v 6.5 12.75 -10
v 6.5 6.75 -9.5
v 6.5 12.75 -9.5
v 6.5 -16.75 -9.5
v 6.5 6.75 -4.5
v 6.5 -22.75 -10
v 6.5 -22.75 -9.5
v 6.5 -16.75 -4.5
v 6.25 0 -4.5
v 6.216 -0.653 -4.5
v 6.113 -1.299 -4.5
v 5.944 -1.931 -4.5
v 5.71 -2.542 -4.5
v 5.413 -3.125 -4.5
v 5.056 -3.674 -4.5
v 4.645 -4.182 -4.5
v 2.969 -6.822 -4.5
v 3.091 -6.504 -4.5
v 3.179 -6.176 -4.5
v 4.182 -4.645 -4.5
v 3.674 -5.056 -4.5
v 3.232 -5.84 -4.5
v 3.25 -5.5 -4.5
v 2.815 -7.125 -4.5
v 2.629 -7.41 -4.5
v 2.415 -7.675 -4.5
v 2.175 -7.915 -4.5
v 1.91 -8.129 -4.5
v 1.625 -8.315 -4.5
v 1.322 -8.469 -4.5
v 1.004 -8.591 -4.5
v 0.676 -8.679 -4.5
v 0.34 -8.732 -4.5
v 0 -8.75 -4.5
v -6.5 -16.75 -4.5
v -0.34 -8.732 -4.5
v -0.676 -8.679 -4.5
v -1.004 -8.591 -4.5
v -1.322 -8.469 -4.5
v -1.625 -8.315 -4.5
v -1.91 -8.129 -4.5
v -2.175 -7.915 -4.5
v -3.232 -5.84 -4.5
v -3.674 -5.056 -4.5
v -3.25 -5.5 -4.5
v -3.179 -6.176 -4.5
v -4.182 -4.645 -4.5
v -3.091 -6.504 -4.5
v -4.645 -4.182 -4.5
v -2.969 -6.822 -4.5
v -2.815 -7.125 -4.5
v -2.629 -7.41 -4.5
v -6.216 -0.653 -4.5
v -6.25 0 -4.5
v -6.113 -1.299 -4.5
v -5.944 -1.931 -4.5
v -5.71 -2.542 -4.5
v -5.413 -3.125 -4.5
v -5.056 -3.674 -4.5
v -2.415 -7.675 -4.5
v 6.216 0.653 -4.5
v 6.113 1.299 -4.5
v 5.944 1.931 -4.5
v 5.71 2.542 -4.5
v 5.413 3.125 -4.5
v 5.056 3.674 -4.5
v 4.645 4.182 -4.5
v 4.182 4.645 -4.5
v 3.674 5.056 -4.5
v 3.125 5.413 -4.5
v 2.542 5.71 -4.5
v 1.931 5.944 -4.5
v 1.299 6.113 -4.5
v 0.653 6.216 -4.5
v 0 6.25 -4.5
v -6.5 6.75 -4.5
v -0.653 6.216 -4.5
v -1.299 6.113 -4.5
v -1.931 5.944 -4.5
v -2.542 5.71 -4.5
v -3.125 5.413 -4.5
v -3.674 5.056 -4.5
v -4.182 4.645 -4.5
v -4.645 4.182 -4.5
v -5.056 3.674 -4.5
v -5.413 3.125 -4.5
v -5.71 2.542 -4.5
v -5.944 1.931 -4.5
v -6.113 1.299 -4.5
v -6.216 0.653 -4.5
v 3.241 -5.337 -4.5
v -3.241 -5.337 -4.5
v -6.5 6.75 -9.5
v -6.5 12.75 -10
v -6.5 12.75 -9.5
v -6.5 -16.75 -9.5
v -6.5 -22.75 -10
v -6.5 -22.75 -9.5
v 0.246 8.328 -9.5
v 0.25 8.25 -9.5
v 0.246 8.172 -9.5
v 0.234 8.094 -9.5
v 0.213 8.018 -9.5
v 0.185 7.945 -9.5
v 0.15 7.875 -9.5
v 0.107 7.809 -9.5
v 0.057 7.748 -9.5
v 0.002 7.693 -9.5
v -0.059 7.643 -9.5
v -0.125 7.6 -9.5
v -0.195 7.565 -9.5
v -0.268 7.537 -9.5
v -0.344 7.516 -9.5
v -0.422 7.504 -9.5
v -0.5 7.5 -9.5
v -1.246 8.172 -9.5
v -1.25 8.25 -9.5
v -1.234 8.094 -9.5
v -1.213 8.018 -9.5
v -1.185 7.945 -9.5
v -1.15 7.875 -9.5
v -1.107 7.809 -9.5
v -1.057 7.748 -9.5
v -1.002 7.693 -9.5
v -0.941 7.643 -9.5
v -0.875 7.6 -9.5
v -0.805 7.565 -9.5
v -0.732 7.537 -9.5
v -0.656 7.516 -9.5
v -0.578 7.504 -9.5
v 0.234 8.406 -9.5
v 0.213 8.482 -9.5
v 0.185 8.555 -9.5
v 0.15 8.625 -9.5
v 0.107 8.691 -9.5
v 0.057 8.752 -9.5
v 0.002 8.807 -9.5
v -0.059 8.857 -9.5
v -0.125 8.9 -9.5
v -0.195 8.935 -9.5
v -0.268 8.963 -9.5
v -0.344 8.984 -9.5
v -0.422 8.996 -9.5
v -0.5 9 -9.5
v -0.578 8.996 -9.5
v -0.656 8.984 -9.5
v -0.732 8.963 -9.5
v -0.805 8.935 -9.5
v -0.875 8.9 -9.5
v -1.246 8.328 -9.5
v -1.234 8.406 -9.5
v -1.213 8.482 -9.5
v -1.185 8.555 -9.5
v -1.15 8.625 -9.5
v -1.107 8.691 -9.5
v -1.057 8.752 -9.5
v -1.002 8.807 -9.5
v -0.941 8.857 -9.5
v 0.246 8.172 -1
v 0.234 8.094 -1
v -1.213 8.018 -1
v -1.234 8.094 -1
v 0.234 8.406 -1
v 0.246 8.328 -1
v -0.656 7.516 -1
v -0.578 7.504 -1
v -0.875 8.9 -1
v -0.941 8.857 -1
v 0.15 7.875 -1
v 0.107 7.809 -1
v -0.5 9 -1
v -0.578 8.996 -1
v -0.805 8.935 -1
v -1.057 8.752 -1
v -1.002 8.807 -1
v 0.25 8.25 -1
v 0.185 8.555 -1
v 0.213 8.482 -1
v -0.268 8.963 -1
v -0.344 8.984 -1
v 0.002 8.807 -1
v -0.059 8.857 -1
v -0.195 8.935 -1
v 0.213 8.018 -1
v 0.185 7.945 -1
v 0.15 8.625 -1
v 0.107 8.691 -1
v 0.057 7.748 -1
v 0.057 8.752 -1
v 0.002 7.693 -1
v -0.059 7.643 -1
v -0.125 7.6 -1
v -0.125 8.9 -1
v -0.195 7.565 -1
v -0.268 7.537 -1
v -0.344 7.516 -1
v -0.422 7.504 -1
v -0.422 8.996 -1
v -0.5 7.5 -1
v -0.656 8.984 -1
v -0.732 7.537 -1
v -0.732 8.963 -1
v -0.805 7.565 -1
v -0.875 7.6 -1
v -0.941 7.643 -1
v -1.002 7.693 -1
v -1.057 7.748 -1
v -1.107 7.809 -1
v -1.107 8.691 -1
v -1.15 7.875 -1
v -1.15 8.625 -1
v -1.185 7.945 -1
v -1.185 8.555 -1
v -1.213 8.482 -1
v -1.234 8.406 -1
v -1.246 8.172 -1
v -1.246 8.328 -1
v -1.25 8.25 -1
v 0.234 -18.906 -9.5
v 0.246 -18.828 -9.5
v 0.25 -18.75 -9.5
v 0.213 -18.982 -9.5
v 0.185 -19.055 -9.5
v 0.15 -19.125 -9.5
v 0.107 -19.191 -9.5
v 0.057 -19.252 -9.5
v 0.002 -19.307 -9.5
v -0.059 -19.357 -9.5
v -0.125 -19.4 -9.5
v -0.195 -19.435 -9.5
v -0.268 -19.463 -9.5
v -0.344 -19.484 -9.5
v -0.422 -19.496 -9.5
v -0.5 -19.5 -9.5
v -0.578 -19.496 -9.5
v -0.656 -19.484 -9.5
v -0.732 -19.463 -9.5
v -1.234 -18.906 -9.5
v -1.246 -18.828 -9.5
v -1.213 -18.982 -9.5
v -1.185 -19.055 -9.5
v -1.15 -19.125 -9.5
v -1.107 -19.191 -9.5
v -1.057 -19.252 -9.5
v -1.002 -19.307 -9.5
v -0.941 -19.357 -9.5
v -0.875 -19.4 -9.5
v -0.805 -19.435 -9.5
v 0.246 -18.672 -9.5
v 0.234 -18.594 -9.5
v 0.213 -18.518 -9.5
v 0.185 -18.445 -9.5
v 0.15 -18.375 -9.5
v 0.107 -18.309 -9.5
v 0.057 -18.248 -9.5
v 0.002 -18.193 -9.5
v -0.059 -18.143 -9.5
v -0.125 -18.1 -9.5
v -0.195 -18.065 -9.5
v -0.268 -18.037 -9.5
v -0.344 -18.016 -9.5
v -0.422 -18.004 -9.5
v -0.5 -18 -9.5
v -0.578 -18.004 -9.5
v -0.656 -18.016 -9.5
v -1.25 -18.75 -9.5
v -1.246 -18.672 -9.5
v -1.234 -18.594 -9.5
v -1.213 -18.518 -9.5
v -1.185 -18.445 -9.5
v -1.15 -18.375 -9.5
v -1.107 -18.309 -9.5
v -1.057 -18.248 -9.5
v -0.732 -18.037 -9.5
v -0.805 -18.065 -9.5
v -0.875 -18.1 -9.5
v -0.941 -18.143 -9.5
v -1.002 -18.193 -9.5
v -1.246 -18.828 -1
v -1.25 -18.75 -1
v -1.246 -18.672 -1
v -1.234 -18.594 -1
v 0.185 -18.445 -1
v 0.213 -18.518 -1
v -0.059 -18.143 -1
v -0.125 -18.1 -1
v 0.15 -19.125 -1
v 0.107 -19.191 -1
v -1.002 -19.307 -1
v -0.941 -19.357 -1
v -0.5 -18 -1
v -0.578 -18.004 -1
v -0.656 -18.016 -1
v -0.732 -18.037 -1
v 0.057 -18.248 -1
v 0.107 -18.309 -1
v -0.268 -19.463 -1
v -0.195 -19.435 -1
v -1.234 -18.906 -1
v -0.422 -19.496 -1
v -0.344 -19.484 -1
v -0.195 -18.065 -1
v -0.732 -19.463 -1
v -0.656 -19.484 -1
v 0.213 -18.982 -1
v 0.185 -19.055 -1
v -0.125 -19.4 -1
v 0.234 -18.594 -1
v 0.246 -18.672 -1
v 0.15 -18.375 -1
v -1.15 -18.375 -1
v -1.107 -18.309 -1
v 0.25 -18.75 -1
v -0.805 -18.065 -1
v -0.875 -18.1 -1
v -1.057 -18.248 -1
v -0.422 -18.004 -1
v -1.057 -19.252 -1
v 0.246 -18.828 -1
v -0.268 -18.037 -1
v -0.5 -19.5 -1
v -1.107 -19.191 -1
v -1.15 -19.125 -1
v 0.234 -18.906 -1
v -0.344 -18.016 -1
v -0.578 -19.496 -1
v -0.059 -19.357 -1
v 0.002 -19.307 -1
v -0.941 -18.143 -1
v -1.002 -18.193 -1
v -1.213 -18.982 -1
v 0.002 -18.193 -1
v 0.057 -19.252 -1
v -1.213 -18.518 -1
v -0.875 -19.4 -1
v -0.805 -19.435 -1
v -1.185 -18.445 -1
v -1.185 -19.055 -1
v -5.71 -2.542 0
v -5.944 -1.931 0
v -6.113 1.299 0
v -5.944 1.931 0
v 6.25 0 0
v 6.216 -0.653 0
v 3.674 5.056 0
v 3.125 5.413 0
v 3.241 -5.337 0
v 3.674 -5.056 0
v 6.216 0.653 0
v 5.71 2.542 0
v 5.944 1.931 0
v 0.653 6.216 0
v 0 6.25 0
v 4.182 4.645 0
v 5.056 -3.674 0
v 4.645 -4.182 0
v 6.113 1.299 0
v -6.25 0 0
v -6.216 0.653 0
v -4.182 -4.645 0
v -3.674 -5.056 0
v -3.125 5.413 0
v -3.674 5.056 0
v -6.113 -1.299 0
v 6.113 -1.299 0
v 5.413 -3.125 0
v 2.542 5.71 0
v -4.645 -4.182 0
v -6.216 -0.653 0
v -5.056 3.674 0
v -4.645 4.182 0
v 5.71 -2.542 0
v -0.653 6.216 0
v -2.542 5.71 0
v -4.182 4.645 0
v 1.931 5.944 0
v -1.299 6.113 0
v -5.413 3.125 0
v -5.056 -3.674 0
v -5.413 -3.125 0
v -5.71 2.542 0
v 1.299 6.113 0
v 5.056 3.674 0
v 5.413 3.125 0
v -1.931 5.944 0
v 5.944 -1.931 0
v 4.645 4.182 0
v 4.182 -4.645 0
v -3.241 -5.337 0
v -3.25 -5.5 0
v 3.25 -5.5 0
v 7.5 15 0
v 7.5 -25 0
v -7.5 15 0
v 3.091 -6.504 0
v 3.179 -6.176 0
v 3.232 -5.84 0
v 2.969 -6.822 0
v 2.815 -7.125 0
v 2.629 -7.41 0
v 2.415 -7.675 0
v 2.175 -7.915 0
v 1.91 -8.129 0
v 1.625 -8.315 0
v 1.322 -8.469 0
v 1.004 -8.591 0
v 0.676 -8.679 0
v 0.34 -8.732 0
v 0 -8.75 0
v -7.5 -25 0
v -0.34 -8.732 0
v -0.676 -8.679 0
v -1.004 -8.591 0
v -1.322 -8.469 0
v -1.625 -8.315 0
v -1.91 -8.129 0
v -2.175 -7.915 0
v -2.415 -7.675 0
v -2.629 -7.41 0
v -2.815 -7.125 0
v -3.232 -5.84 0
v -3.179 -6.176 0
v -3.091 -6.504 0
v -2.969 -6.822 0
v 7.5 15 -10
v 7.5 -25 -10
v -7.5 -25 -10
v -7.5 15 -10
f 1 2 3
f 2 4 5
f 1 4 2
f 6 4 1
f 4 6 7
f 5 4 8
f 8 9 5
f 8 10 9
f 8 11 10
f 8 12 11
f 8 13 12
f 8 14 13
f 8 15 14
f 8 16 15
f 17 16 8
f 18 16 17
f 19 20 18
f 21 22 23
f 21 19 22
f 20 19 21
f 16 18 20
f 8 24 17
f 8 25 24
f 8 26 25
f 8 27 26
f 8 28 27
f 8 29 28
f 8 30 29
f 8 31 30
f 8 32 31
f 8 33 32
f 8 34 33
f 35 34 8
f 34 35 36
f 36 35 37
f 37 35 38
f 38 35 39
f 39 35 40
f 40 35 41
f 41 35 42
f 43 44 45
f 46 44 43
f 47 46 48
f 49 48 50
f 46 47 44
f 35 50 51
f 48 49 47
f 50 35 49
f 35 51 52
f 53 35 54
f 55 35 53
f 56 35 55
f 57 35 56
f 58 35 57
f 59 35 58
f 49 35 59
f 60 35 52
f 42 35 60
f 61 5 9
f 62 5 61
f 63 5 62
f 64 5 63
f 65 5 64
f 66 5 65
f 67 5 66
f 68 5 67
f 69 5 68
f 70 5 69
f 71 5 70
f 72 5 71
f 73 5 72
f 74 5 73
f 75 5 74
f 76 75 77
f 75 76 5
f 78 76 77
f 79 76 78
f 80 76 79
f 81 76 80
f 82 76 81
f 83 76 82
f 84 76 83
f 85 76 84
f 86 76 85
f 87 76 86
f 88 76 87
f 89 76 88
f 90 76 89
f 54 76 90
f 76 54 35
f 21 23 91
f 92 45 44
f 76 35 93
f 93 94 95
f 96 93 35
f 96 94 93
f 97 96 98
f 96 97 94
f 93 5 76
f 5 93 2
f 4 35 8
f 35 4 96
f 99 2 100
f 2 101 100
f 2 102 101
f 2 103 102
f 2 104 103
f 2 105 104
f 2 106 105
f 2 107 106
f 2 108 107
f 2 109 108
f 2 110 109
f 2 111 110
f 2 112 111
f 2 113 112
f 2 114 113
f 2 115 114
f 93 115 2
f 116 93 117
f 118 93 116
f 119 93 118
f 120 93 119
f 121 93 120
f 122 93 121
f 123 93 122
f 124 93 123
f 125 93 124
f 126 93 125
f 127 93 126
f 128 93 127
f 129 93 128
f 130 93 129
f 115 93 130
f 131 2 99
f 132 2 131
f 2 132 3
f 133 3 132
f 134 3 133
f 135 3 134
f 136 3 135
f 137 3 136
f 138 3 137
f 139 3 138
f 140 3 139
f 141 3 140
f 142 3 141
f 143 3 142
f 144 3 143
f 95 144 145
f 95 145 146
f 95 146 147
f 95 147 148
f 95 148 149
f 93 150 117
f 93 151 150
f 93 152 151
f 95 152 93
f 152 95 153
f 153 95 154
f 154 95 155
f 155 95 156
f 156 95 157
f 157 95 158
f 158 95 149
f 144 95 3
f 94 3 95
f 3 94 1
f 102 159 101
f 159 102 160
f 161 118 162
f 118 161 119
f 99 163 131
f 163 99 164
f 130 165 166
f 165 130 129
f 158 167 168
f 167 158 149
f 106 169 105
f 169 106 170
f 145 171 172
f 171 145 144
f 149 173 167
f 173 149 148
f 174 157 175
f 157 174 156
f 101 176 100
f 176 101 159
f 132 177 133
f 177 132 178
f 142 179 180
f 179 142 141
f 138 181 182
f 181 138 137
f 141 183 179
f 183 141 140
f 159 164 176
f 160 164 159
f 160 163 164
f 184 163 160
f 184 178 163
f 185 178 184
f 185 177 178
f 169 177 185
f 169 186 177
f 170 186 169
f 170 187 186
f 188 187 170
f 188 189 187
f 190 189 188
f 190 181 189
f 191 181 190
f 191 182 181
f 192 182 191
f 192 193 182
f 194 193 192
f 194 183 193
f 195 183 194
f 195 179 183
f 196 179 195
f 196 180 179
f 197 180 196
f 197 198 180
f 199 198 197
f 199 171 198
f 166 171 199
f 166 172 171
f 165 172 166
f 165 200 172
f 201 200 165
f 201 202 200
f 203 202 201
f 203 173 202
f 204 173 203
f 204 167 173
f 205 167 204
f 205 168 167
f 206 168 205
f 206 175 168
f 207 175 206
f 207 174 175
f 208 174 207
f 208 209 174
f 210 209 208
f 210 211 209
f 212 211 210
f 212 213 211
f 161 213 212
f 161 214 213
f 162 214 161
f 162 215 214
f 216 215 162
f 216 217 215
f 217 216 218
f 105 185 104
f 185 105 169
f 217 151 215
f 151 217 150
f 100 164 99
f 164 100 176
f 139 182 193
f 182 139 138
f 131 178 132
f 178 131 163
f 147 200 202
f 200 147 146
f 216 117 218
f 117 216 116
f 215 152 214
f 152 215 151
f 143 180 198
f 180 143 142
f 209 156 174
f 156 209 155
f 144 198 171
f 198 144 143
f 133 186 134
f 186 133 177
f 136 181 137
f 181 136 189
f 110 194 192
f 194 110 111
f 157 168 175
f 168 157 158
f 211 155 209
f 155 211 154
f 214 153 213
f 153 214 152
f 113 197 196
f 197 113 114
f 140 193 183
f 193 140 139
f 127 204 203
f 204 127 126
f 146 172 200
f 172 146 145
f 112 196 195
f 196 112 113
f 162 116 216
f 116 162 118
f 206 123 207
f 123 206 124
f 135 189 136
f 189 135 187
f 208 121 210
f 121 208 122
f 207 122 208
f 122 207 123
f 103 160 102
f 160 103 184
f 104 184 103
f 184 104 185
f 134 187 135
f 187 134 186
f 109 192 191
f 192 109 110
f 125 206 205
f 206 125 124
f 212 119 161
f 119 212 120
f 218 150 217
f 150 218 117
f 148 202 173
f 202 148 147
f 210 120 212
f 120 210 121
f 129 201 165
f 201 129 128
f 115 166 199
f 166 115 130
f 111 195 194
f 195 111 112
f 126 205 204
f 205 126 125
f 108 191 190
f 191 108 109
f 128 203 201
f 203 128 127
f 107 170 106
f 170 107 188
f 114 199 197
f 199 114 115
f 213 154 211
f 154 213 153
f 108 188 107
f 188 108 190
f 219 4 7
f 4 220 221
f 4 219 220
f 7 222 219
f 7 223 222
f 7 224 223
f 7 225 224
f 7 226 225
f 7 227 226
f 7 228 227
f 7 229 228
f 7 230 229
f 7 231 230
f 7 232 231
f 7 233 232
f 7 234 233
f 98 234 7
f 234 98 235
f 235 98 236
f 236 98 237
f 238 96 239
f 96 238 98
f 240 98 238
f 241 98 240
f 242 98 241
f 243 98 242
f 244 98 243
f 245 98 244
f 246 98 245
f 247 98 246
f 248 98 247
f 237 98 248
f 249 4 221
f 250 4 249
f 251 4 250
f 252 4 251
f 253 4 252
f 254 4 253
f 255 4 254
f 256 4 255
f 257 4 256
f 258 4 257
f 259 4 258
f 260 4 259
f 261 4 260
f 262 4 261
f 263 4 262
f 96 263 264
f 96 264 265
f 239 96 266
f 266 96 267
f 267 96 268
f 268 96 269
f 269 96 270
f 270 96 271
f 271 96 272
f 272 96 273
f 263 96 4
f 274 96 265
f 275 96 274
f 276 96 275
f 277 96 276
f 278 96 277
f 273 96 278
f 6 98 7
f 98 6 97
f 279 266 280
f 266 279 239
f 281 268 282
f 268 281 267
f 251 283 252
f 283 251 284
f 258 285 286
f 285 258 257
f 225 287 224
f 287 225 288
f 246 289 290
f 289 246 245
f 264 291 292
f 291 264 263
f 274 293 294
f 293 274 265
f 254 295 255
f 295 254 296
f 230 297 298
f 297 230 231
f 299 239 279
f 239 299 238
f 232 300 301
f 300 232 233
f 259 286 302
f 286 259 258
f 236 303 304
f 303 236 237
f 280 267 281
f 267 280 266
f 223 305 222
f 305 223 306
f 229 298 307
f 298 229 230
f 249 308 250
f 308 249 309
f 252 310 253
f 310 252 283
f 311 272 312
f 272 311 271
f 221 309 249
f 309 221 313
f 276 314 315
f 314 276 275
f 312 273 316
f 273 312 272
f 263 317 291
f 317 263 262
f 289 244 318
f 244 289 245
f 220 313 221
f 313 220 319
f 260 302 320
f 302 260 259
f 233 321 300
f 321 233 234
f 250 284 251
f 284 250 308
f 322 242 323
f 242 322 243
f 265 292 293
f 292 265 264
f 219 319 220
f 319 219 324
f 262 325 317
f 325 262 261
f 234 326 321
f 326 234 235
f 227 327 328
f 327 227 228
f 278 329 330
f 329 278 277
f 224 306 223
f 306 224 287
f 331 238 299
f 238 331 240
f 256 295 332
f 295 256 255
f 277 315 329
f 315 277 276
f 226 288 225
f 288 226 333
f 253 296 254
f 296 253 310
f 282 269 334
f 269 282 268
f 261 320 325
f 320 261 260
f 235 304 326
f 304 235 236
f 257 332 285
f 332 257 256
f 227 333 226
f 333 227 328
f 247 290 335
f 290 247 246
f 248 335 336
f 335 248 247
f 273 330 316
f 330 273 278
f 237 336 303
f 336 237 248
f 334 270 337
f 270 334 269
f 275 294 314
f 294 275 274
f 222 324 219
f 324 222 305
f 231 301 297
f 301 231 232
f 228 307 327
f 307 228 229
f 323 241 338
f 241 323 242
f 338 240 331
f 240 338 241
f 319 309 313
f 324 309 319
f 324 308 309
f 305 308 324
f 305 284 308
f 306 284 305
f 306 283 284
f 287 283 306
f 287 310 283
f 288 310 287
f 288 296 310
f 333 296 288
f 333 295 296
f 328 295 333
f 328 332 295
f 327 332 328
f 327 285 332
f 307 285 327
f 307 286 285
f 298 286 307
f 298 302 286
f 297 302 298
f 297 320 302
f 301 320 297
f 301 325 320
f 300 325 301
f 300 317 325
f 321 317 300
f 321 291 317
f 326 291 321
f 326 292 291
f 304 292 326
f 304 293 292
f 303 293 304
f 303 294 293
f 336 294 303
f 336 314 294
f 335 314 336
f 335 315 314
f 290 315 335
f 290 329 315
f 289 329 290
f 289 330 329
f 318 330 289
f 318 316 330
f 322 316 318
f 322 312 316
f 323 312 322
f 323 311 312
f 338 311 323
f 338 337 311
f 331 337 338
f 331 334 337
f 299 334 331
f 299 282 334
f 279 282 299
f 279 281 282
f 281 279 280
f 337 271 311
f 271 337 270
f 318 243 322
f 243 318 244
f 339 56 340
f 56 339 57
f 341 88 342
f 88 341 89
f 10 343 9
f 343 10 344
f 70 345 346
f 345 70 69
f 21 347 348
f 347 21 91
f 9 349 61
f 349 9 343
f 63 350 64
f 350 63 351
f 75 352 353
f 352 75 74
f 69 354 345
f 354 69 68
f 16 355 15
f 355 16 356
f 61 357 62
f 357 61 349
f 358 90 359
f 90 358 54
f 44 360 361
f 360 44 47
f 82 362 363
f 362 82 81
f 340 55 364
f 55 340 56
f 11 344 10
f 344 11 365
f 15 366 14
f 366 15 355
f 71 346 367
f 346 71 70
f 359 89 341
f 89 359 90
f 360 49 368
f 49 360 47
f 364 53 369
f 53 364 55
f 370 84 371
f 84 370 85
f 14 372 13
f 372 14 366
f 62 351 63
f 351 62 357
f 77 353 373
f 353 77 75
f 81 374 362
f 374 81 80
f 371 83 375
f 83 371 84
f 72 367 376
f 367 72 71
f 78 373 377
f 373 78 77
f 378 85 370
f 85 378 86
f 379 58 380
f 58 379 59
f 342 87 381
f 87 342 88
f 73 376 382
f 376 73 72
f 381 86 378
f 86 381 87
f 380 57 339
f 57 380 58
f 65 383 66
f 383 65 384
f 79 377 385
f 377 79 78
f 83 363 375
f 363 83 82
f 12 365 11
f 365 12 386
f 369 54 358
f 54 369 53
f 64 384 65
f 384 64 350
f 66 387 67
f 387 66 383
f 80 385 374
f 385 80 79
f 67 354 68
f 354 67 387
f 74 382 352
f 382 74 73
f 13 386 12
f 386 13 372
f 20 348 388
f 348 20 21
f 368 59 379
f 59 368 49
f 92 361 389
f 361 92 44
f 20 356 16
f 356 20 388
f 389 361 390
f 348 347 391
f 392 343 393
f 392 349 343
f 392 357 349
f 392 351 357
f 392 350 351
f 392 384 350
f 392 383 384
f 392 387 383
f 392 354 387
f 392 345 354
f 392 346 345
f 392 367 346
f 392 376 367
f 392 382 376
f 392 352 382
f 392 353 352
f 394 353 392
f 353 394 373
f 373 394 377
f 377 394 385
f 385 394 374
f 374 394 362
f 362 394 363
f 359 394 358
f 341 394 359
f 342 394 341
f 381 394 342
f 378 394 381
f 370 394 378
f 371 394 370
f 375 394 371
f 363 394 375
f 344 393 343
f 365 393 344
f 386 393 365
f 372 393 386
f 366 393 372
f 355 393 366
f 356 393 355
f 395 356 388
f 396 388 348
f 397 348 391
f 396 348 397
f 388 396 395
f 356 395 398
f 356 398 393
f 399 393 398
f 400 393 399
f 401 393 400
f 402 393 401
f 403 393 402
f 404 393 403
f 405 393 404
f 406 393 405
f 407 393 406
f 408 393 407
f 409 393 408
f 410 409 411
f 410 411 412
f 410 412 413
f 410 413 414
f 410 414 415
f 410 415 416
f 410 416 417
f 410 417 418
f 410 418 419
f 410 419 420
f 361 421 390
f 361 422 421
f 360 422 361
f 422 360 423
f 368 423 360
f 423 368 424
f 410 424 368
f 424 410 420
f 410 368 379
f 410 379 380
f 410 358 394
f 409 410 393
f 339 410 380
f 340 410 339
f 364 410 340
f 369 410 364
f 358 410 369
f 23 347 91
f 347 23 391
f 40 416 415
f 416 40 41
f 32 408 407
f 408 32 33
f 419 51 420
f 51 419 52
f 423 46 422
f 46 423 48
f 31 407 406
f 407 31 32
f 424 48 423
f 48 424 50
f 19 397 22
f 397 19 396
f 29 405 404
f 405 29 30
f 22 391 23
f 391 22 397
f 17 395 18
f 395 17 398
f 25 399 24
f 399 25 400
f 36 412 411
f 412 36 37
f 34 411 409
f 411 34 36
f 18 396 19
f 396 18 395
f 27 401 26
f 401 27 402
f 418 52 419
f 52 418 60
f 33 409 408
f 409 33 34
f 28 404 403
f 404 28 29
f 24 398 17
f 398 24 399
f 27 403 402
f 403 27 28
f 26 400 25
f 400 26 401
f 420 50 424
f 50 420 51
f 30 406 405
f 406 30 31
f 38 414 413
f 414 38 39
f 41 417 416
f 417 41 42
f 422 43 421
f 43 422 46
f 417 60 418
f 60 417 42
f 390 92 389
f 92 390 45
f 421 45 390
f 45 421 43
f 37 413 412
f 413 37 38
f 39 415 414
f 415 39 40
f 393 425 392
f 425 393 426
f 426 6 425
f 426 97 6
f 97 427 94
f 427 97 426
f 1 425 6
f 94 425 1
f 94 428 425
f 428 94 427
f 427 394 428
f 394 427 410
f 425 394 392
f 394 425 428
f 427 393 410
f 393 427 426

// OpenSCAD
// file: rpi.scad
module base_plate_screw_head_cone(screw_head_radius = 6, screw_head_depth = 2)
{

    rotate_extrude()
    {
        translate([0, 0, 0]) polygon(points=[[0,0],[screw_head_radius, 0],[0,screw_head_depth]], paths=[[0,1,2]]);
    }
}


module raspberry_pi_holes(thickness = 3, screw_hole_diameter = 3)
{
//    z_offset = -thickness / 2.0;
    z_offset = -thickness;
    for ( x_offset = [3.5, 61.5] )
    {
        for ( y_offset = [3.5, 52.5] )
        {
            union()
            {
                translate([x_offset, y_offset, z_offset]) cylinder(d=screw_hole_diameter, h=thickness);
                translate([x_offset, y_offset, z_offset]) base_plate_screw_head_cone();
            }
        }
    }
}


// camera hole is centered at (0, 0, 0)
//camera_hole_center_x = 0;
//camera_hole_center_y = 6.7;
//module rpi_camera_holes(thickness = 2)
//{
//    wall_thickness = thickness;
//    
//    screw_head_depth = 2;
//    screw_head_radius = 4;
//    
//    translate([0, 0, -wall_thickness + 1])
//    union()
//    {
//        for ( y_offset = [-6.75, 6.25] )
//        {
//            for ( x_offset = [-10.5, 10.5] )
//            {
//                // screw hole
//                translate([camera_hole_center_x + x_offset, camera_hole_center_y+ y_offset, -10])
//                cylinder(h=20, r=1.25);
//                
//                // screw head cone
//                translate([camera_hole_center_x + x_offset, camera_hole_center_y+ y_offset, 0])
//                rotate([0, 0, 0])
//                rotate_extrude()
//                {
//                    translate([0, 0, 0]) polygon(points=[[0,0],[screw_head_radius, 0],[0,screw_head_depth]], paths=[[0,1,2]]);
//                }
//            }
//        }
//    }
//    
//    translate([camera_hole_center_x, camera_hole_center_y - 6.75, -wall_thickness])cube(size = [9.5, 9.5, 9.5], center = true);
//}

// lens center is at (0, 0, 0)
module rpi_camera_holes(thickness = 2, screw_hole_diameter = 2.5)
{
    lens_side_length = 9.5;
    
    union()
    {
        for ( y_offset = [0, 13] )
        {
            for ( x_offset = [-10.5, 10.5] )
            {
                translate([x_offset, y_offset, 0])
                cylinder(d=screw_hole_diameter, h=thickness);
            }
        }
        
        translate([-lens_side_length / 2, -lens_side_length / 2, 0])
        cube([9.5, 9.5, thickness]);
    }
}
// main file
include <rpi.scad>
include <micro_servo.scad>

// for connecting to the drone
y_offset = -3;

$fn = 60;

width = 15;
length = 40;
height = 10;

difference()
{
    translate([-width / 2, -25, -height])
    cube([width, length, height]);
    
    micro_servo_void_with_clearance();
}
